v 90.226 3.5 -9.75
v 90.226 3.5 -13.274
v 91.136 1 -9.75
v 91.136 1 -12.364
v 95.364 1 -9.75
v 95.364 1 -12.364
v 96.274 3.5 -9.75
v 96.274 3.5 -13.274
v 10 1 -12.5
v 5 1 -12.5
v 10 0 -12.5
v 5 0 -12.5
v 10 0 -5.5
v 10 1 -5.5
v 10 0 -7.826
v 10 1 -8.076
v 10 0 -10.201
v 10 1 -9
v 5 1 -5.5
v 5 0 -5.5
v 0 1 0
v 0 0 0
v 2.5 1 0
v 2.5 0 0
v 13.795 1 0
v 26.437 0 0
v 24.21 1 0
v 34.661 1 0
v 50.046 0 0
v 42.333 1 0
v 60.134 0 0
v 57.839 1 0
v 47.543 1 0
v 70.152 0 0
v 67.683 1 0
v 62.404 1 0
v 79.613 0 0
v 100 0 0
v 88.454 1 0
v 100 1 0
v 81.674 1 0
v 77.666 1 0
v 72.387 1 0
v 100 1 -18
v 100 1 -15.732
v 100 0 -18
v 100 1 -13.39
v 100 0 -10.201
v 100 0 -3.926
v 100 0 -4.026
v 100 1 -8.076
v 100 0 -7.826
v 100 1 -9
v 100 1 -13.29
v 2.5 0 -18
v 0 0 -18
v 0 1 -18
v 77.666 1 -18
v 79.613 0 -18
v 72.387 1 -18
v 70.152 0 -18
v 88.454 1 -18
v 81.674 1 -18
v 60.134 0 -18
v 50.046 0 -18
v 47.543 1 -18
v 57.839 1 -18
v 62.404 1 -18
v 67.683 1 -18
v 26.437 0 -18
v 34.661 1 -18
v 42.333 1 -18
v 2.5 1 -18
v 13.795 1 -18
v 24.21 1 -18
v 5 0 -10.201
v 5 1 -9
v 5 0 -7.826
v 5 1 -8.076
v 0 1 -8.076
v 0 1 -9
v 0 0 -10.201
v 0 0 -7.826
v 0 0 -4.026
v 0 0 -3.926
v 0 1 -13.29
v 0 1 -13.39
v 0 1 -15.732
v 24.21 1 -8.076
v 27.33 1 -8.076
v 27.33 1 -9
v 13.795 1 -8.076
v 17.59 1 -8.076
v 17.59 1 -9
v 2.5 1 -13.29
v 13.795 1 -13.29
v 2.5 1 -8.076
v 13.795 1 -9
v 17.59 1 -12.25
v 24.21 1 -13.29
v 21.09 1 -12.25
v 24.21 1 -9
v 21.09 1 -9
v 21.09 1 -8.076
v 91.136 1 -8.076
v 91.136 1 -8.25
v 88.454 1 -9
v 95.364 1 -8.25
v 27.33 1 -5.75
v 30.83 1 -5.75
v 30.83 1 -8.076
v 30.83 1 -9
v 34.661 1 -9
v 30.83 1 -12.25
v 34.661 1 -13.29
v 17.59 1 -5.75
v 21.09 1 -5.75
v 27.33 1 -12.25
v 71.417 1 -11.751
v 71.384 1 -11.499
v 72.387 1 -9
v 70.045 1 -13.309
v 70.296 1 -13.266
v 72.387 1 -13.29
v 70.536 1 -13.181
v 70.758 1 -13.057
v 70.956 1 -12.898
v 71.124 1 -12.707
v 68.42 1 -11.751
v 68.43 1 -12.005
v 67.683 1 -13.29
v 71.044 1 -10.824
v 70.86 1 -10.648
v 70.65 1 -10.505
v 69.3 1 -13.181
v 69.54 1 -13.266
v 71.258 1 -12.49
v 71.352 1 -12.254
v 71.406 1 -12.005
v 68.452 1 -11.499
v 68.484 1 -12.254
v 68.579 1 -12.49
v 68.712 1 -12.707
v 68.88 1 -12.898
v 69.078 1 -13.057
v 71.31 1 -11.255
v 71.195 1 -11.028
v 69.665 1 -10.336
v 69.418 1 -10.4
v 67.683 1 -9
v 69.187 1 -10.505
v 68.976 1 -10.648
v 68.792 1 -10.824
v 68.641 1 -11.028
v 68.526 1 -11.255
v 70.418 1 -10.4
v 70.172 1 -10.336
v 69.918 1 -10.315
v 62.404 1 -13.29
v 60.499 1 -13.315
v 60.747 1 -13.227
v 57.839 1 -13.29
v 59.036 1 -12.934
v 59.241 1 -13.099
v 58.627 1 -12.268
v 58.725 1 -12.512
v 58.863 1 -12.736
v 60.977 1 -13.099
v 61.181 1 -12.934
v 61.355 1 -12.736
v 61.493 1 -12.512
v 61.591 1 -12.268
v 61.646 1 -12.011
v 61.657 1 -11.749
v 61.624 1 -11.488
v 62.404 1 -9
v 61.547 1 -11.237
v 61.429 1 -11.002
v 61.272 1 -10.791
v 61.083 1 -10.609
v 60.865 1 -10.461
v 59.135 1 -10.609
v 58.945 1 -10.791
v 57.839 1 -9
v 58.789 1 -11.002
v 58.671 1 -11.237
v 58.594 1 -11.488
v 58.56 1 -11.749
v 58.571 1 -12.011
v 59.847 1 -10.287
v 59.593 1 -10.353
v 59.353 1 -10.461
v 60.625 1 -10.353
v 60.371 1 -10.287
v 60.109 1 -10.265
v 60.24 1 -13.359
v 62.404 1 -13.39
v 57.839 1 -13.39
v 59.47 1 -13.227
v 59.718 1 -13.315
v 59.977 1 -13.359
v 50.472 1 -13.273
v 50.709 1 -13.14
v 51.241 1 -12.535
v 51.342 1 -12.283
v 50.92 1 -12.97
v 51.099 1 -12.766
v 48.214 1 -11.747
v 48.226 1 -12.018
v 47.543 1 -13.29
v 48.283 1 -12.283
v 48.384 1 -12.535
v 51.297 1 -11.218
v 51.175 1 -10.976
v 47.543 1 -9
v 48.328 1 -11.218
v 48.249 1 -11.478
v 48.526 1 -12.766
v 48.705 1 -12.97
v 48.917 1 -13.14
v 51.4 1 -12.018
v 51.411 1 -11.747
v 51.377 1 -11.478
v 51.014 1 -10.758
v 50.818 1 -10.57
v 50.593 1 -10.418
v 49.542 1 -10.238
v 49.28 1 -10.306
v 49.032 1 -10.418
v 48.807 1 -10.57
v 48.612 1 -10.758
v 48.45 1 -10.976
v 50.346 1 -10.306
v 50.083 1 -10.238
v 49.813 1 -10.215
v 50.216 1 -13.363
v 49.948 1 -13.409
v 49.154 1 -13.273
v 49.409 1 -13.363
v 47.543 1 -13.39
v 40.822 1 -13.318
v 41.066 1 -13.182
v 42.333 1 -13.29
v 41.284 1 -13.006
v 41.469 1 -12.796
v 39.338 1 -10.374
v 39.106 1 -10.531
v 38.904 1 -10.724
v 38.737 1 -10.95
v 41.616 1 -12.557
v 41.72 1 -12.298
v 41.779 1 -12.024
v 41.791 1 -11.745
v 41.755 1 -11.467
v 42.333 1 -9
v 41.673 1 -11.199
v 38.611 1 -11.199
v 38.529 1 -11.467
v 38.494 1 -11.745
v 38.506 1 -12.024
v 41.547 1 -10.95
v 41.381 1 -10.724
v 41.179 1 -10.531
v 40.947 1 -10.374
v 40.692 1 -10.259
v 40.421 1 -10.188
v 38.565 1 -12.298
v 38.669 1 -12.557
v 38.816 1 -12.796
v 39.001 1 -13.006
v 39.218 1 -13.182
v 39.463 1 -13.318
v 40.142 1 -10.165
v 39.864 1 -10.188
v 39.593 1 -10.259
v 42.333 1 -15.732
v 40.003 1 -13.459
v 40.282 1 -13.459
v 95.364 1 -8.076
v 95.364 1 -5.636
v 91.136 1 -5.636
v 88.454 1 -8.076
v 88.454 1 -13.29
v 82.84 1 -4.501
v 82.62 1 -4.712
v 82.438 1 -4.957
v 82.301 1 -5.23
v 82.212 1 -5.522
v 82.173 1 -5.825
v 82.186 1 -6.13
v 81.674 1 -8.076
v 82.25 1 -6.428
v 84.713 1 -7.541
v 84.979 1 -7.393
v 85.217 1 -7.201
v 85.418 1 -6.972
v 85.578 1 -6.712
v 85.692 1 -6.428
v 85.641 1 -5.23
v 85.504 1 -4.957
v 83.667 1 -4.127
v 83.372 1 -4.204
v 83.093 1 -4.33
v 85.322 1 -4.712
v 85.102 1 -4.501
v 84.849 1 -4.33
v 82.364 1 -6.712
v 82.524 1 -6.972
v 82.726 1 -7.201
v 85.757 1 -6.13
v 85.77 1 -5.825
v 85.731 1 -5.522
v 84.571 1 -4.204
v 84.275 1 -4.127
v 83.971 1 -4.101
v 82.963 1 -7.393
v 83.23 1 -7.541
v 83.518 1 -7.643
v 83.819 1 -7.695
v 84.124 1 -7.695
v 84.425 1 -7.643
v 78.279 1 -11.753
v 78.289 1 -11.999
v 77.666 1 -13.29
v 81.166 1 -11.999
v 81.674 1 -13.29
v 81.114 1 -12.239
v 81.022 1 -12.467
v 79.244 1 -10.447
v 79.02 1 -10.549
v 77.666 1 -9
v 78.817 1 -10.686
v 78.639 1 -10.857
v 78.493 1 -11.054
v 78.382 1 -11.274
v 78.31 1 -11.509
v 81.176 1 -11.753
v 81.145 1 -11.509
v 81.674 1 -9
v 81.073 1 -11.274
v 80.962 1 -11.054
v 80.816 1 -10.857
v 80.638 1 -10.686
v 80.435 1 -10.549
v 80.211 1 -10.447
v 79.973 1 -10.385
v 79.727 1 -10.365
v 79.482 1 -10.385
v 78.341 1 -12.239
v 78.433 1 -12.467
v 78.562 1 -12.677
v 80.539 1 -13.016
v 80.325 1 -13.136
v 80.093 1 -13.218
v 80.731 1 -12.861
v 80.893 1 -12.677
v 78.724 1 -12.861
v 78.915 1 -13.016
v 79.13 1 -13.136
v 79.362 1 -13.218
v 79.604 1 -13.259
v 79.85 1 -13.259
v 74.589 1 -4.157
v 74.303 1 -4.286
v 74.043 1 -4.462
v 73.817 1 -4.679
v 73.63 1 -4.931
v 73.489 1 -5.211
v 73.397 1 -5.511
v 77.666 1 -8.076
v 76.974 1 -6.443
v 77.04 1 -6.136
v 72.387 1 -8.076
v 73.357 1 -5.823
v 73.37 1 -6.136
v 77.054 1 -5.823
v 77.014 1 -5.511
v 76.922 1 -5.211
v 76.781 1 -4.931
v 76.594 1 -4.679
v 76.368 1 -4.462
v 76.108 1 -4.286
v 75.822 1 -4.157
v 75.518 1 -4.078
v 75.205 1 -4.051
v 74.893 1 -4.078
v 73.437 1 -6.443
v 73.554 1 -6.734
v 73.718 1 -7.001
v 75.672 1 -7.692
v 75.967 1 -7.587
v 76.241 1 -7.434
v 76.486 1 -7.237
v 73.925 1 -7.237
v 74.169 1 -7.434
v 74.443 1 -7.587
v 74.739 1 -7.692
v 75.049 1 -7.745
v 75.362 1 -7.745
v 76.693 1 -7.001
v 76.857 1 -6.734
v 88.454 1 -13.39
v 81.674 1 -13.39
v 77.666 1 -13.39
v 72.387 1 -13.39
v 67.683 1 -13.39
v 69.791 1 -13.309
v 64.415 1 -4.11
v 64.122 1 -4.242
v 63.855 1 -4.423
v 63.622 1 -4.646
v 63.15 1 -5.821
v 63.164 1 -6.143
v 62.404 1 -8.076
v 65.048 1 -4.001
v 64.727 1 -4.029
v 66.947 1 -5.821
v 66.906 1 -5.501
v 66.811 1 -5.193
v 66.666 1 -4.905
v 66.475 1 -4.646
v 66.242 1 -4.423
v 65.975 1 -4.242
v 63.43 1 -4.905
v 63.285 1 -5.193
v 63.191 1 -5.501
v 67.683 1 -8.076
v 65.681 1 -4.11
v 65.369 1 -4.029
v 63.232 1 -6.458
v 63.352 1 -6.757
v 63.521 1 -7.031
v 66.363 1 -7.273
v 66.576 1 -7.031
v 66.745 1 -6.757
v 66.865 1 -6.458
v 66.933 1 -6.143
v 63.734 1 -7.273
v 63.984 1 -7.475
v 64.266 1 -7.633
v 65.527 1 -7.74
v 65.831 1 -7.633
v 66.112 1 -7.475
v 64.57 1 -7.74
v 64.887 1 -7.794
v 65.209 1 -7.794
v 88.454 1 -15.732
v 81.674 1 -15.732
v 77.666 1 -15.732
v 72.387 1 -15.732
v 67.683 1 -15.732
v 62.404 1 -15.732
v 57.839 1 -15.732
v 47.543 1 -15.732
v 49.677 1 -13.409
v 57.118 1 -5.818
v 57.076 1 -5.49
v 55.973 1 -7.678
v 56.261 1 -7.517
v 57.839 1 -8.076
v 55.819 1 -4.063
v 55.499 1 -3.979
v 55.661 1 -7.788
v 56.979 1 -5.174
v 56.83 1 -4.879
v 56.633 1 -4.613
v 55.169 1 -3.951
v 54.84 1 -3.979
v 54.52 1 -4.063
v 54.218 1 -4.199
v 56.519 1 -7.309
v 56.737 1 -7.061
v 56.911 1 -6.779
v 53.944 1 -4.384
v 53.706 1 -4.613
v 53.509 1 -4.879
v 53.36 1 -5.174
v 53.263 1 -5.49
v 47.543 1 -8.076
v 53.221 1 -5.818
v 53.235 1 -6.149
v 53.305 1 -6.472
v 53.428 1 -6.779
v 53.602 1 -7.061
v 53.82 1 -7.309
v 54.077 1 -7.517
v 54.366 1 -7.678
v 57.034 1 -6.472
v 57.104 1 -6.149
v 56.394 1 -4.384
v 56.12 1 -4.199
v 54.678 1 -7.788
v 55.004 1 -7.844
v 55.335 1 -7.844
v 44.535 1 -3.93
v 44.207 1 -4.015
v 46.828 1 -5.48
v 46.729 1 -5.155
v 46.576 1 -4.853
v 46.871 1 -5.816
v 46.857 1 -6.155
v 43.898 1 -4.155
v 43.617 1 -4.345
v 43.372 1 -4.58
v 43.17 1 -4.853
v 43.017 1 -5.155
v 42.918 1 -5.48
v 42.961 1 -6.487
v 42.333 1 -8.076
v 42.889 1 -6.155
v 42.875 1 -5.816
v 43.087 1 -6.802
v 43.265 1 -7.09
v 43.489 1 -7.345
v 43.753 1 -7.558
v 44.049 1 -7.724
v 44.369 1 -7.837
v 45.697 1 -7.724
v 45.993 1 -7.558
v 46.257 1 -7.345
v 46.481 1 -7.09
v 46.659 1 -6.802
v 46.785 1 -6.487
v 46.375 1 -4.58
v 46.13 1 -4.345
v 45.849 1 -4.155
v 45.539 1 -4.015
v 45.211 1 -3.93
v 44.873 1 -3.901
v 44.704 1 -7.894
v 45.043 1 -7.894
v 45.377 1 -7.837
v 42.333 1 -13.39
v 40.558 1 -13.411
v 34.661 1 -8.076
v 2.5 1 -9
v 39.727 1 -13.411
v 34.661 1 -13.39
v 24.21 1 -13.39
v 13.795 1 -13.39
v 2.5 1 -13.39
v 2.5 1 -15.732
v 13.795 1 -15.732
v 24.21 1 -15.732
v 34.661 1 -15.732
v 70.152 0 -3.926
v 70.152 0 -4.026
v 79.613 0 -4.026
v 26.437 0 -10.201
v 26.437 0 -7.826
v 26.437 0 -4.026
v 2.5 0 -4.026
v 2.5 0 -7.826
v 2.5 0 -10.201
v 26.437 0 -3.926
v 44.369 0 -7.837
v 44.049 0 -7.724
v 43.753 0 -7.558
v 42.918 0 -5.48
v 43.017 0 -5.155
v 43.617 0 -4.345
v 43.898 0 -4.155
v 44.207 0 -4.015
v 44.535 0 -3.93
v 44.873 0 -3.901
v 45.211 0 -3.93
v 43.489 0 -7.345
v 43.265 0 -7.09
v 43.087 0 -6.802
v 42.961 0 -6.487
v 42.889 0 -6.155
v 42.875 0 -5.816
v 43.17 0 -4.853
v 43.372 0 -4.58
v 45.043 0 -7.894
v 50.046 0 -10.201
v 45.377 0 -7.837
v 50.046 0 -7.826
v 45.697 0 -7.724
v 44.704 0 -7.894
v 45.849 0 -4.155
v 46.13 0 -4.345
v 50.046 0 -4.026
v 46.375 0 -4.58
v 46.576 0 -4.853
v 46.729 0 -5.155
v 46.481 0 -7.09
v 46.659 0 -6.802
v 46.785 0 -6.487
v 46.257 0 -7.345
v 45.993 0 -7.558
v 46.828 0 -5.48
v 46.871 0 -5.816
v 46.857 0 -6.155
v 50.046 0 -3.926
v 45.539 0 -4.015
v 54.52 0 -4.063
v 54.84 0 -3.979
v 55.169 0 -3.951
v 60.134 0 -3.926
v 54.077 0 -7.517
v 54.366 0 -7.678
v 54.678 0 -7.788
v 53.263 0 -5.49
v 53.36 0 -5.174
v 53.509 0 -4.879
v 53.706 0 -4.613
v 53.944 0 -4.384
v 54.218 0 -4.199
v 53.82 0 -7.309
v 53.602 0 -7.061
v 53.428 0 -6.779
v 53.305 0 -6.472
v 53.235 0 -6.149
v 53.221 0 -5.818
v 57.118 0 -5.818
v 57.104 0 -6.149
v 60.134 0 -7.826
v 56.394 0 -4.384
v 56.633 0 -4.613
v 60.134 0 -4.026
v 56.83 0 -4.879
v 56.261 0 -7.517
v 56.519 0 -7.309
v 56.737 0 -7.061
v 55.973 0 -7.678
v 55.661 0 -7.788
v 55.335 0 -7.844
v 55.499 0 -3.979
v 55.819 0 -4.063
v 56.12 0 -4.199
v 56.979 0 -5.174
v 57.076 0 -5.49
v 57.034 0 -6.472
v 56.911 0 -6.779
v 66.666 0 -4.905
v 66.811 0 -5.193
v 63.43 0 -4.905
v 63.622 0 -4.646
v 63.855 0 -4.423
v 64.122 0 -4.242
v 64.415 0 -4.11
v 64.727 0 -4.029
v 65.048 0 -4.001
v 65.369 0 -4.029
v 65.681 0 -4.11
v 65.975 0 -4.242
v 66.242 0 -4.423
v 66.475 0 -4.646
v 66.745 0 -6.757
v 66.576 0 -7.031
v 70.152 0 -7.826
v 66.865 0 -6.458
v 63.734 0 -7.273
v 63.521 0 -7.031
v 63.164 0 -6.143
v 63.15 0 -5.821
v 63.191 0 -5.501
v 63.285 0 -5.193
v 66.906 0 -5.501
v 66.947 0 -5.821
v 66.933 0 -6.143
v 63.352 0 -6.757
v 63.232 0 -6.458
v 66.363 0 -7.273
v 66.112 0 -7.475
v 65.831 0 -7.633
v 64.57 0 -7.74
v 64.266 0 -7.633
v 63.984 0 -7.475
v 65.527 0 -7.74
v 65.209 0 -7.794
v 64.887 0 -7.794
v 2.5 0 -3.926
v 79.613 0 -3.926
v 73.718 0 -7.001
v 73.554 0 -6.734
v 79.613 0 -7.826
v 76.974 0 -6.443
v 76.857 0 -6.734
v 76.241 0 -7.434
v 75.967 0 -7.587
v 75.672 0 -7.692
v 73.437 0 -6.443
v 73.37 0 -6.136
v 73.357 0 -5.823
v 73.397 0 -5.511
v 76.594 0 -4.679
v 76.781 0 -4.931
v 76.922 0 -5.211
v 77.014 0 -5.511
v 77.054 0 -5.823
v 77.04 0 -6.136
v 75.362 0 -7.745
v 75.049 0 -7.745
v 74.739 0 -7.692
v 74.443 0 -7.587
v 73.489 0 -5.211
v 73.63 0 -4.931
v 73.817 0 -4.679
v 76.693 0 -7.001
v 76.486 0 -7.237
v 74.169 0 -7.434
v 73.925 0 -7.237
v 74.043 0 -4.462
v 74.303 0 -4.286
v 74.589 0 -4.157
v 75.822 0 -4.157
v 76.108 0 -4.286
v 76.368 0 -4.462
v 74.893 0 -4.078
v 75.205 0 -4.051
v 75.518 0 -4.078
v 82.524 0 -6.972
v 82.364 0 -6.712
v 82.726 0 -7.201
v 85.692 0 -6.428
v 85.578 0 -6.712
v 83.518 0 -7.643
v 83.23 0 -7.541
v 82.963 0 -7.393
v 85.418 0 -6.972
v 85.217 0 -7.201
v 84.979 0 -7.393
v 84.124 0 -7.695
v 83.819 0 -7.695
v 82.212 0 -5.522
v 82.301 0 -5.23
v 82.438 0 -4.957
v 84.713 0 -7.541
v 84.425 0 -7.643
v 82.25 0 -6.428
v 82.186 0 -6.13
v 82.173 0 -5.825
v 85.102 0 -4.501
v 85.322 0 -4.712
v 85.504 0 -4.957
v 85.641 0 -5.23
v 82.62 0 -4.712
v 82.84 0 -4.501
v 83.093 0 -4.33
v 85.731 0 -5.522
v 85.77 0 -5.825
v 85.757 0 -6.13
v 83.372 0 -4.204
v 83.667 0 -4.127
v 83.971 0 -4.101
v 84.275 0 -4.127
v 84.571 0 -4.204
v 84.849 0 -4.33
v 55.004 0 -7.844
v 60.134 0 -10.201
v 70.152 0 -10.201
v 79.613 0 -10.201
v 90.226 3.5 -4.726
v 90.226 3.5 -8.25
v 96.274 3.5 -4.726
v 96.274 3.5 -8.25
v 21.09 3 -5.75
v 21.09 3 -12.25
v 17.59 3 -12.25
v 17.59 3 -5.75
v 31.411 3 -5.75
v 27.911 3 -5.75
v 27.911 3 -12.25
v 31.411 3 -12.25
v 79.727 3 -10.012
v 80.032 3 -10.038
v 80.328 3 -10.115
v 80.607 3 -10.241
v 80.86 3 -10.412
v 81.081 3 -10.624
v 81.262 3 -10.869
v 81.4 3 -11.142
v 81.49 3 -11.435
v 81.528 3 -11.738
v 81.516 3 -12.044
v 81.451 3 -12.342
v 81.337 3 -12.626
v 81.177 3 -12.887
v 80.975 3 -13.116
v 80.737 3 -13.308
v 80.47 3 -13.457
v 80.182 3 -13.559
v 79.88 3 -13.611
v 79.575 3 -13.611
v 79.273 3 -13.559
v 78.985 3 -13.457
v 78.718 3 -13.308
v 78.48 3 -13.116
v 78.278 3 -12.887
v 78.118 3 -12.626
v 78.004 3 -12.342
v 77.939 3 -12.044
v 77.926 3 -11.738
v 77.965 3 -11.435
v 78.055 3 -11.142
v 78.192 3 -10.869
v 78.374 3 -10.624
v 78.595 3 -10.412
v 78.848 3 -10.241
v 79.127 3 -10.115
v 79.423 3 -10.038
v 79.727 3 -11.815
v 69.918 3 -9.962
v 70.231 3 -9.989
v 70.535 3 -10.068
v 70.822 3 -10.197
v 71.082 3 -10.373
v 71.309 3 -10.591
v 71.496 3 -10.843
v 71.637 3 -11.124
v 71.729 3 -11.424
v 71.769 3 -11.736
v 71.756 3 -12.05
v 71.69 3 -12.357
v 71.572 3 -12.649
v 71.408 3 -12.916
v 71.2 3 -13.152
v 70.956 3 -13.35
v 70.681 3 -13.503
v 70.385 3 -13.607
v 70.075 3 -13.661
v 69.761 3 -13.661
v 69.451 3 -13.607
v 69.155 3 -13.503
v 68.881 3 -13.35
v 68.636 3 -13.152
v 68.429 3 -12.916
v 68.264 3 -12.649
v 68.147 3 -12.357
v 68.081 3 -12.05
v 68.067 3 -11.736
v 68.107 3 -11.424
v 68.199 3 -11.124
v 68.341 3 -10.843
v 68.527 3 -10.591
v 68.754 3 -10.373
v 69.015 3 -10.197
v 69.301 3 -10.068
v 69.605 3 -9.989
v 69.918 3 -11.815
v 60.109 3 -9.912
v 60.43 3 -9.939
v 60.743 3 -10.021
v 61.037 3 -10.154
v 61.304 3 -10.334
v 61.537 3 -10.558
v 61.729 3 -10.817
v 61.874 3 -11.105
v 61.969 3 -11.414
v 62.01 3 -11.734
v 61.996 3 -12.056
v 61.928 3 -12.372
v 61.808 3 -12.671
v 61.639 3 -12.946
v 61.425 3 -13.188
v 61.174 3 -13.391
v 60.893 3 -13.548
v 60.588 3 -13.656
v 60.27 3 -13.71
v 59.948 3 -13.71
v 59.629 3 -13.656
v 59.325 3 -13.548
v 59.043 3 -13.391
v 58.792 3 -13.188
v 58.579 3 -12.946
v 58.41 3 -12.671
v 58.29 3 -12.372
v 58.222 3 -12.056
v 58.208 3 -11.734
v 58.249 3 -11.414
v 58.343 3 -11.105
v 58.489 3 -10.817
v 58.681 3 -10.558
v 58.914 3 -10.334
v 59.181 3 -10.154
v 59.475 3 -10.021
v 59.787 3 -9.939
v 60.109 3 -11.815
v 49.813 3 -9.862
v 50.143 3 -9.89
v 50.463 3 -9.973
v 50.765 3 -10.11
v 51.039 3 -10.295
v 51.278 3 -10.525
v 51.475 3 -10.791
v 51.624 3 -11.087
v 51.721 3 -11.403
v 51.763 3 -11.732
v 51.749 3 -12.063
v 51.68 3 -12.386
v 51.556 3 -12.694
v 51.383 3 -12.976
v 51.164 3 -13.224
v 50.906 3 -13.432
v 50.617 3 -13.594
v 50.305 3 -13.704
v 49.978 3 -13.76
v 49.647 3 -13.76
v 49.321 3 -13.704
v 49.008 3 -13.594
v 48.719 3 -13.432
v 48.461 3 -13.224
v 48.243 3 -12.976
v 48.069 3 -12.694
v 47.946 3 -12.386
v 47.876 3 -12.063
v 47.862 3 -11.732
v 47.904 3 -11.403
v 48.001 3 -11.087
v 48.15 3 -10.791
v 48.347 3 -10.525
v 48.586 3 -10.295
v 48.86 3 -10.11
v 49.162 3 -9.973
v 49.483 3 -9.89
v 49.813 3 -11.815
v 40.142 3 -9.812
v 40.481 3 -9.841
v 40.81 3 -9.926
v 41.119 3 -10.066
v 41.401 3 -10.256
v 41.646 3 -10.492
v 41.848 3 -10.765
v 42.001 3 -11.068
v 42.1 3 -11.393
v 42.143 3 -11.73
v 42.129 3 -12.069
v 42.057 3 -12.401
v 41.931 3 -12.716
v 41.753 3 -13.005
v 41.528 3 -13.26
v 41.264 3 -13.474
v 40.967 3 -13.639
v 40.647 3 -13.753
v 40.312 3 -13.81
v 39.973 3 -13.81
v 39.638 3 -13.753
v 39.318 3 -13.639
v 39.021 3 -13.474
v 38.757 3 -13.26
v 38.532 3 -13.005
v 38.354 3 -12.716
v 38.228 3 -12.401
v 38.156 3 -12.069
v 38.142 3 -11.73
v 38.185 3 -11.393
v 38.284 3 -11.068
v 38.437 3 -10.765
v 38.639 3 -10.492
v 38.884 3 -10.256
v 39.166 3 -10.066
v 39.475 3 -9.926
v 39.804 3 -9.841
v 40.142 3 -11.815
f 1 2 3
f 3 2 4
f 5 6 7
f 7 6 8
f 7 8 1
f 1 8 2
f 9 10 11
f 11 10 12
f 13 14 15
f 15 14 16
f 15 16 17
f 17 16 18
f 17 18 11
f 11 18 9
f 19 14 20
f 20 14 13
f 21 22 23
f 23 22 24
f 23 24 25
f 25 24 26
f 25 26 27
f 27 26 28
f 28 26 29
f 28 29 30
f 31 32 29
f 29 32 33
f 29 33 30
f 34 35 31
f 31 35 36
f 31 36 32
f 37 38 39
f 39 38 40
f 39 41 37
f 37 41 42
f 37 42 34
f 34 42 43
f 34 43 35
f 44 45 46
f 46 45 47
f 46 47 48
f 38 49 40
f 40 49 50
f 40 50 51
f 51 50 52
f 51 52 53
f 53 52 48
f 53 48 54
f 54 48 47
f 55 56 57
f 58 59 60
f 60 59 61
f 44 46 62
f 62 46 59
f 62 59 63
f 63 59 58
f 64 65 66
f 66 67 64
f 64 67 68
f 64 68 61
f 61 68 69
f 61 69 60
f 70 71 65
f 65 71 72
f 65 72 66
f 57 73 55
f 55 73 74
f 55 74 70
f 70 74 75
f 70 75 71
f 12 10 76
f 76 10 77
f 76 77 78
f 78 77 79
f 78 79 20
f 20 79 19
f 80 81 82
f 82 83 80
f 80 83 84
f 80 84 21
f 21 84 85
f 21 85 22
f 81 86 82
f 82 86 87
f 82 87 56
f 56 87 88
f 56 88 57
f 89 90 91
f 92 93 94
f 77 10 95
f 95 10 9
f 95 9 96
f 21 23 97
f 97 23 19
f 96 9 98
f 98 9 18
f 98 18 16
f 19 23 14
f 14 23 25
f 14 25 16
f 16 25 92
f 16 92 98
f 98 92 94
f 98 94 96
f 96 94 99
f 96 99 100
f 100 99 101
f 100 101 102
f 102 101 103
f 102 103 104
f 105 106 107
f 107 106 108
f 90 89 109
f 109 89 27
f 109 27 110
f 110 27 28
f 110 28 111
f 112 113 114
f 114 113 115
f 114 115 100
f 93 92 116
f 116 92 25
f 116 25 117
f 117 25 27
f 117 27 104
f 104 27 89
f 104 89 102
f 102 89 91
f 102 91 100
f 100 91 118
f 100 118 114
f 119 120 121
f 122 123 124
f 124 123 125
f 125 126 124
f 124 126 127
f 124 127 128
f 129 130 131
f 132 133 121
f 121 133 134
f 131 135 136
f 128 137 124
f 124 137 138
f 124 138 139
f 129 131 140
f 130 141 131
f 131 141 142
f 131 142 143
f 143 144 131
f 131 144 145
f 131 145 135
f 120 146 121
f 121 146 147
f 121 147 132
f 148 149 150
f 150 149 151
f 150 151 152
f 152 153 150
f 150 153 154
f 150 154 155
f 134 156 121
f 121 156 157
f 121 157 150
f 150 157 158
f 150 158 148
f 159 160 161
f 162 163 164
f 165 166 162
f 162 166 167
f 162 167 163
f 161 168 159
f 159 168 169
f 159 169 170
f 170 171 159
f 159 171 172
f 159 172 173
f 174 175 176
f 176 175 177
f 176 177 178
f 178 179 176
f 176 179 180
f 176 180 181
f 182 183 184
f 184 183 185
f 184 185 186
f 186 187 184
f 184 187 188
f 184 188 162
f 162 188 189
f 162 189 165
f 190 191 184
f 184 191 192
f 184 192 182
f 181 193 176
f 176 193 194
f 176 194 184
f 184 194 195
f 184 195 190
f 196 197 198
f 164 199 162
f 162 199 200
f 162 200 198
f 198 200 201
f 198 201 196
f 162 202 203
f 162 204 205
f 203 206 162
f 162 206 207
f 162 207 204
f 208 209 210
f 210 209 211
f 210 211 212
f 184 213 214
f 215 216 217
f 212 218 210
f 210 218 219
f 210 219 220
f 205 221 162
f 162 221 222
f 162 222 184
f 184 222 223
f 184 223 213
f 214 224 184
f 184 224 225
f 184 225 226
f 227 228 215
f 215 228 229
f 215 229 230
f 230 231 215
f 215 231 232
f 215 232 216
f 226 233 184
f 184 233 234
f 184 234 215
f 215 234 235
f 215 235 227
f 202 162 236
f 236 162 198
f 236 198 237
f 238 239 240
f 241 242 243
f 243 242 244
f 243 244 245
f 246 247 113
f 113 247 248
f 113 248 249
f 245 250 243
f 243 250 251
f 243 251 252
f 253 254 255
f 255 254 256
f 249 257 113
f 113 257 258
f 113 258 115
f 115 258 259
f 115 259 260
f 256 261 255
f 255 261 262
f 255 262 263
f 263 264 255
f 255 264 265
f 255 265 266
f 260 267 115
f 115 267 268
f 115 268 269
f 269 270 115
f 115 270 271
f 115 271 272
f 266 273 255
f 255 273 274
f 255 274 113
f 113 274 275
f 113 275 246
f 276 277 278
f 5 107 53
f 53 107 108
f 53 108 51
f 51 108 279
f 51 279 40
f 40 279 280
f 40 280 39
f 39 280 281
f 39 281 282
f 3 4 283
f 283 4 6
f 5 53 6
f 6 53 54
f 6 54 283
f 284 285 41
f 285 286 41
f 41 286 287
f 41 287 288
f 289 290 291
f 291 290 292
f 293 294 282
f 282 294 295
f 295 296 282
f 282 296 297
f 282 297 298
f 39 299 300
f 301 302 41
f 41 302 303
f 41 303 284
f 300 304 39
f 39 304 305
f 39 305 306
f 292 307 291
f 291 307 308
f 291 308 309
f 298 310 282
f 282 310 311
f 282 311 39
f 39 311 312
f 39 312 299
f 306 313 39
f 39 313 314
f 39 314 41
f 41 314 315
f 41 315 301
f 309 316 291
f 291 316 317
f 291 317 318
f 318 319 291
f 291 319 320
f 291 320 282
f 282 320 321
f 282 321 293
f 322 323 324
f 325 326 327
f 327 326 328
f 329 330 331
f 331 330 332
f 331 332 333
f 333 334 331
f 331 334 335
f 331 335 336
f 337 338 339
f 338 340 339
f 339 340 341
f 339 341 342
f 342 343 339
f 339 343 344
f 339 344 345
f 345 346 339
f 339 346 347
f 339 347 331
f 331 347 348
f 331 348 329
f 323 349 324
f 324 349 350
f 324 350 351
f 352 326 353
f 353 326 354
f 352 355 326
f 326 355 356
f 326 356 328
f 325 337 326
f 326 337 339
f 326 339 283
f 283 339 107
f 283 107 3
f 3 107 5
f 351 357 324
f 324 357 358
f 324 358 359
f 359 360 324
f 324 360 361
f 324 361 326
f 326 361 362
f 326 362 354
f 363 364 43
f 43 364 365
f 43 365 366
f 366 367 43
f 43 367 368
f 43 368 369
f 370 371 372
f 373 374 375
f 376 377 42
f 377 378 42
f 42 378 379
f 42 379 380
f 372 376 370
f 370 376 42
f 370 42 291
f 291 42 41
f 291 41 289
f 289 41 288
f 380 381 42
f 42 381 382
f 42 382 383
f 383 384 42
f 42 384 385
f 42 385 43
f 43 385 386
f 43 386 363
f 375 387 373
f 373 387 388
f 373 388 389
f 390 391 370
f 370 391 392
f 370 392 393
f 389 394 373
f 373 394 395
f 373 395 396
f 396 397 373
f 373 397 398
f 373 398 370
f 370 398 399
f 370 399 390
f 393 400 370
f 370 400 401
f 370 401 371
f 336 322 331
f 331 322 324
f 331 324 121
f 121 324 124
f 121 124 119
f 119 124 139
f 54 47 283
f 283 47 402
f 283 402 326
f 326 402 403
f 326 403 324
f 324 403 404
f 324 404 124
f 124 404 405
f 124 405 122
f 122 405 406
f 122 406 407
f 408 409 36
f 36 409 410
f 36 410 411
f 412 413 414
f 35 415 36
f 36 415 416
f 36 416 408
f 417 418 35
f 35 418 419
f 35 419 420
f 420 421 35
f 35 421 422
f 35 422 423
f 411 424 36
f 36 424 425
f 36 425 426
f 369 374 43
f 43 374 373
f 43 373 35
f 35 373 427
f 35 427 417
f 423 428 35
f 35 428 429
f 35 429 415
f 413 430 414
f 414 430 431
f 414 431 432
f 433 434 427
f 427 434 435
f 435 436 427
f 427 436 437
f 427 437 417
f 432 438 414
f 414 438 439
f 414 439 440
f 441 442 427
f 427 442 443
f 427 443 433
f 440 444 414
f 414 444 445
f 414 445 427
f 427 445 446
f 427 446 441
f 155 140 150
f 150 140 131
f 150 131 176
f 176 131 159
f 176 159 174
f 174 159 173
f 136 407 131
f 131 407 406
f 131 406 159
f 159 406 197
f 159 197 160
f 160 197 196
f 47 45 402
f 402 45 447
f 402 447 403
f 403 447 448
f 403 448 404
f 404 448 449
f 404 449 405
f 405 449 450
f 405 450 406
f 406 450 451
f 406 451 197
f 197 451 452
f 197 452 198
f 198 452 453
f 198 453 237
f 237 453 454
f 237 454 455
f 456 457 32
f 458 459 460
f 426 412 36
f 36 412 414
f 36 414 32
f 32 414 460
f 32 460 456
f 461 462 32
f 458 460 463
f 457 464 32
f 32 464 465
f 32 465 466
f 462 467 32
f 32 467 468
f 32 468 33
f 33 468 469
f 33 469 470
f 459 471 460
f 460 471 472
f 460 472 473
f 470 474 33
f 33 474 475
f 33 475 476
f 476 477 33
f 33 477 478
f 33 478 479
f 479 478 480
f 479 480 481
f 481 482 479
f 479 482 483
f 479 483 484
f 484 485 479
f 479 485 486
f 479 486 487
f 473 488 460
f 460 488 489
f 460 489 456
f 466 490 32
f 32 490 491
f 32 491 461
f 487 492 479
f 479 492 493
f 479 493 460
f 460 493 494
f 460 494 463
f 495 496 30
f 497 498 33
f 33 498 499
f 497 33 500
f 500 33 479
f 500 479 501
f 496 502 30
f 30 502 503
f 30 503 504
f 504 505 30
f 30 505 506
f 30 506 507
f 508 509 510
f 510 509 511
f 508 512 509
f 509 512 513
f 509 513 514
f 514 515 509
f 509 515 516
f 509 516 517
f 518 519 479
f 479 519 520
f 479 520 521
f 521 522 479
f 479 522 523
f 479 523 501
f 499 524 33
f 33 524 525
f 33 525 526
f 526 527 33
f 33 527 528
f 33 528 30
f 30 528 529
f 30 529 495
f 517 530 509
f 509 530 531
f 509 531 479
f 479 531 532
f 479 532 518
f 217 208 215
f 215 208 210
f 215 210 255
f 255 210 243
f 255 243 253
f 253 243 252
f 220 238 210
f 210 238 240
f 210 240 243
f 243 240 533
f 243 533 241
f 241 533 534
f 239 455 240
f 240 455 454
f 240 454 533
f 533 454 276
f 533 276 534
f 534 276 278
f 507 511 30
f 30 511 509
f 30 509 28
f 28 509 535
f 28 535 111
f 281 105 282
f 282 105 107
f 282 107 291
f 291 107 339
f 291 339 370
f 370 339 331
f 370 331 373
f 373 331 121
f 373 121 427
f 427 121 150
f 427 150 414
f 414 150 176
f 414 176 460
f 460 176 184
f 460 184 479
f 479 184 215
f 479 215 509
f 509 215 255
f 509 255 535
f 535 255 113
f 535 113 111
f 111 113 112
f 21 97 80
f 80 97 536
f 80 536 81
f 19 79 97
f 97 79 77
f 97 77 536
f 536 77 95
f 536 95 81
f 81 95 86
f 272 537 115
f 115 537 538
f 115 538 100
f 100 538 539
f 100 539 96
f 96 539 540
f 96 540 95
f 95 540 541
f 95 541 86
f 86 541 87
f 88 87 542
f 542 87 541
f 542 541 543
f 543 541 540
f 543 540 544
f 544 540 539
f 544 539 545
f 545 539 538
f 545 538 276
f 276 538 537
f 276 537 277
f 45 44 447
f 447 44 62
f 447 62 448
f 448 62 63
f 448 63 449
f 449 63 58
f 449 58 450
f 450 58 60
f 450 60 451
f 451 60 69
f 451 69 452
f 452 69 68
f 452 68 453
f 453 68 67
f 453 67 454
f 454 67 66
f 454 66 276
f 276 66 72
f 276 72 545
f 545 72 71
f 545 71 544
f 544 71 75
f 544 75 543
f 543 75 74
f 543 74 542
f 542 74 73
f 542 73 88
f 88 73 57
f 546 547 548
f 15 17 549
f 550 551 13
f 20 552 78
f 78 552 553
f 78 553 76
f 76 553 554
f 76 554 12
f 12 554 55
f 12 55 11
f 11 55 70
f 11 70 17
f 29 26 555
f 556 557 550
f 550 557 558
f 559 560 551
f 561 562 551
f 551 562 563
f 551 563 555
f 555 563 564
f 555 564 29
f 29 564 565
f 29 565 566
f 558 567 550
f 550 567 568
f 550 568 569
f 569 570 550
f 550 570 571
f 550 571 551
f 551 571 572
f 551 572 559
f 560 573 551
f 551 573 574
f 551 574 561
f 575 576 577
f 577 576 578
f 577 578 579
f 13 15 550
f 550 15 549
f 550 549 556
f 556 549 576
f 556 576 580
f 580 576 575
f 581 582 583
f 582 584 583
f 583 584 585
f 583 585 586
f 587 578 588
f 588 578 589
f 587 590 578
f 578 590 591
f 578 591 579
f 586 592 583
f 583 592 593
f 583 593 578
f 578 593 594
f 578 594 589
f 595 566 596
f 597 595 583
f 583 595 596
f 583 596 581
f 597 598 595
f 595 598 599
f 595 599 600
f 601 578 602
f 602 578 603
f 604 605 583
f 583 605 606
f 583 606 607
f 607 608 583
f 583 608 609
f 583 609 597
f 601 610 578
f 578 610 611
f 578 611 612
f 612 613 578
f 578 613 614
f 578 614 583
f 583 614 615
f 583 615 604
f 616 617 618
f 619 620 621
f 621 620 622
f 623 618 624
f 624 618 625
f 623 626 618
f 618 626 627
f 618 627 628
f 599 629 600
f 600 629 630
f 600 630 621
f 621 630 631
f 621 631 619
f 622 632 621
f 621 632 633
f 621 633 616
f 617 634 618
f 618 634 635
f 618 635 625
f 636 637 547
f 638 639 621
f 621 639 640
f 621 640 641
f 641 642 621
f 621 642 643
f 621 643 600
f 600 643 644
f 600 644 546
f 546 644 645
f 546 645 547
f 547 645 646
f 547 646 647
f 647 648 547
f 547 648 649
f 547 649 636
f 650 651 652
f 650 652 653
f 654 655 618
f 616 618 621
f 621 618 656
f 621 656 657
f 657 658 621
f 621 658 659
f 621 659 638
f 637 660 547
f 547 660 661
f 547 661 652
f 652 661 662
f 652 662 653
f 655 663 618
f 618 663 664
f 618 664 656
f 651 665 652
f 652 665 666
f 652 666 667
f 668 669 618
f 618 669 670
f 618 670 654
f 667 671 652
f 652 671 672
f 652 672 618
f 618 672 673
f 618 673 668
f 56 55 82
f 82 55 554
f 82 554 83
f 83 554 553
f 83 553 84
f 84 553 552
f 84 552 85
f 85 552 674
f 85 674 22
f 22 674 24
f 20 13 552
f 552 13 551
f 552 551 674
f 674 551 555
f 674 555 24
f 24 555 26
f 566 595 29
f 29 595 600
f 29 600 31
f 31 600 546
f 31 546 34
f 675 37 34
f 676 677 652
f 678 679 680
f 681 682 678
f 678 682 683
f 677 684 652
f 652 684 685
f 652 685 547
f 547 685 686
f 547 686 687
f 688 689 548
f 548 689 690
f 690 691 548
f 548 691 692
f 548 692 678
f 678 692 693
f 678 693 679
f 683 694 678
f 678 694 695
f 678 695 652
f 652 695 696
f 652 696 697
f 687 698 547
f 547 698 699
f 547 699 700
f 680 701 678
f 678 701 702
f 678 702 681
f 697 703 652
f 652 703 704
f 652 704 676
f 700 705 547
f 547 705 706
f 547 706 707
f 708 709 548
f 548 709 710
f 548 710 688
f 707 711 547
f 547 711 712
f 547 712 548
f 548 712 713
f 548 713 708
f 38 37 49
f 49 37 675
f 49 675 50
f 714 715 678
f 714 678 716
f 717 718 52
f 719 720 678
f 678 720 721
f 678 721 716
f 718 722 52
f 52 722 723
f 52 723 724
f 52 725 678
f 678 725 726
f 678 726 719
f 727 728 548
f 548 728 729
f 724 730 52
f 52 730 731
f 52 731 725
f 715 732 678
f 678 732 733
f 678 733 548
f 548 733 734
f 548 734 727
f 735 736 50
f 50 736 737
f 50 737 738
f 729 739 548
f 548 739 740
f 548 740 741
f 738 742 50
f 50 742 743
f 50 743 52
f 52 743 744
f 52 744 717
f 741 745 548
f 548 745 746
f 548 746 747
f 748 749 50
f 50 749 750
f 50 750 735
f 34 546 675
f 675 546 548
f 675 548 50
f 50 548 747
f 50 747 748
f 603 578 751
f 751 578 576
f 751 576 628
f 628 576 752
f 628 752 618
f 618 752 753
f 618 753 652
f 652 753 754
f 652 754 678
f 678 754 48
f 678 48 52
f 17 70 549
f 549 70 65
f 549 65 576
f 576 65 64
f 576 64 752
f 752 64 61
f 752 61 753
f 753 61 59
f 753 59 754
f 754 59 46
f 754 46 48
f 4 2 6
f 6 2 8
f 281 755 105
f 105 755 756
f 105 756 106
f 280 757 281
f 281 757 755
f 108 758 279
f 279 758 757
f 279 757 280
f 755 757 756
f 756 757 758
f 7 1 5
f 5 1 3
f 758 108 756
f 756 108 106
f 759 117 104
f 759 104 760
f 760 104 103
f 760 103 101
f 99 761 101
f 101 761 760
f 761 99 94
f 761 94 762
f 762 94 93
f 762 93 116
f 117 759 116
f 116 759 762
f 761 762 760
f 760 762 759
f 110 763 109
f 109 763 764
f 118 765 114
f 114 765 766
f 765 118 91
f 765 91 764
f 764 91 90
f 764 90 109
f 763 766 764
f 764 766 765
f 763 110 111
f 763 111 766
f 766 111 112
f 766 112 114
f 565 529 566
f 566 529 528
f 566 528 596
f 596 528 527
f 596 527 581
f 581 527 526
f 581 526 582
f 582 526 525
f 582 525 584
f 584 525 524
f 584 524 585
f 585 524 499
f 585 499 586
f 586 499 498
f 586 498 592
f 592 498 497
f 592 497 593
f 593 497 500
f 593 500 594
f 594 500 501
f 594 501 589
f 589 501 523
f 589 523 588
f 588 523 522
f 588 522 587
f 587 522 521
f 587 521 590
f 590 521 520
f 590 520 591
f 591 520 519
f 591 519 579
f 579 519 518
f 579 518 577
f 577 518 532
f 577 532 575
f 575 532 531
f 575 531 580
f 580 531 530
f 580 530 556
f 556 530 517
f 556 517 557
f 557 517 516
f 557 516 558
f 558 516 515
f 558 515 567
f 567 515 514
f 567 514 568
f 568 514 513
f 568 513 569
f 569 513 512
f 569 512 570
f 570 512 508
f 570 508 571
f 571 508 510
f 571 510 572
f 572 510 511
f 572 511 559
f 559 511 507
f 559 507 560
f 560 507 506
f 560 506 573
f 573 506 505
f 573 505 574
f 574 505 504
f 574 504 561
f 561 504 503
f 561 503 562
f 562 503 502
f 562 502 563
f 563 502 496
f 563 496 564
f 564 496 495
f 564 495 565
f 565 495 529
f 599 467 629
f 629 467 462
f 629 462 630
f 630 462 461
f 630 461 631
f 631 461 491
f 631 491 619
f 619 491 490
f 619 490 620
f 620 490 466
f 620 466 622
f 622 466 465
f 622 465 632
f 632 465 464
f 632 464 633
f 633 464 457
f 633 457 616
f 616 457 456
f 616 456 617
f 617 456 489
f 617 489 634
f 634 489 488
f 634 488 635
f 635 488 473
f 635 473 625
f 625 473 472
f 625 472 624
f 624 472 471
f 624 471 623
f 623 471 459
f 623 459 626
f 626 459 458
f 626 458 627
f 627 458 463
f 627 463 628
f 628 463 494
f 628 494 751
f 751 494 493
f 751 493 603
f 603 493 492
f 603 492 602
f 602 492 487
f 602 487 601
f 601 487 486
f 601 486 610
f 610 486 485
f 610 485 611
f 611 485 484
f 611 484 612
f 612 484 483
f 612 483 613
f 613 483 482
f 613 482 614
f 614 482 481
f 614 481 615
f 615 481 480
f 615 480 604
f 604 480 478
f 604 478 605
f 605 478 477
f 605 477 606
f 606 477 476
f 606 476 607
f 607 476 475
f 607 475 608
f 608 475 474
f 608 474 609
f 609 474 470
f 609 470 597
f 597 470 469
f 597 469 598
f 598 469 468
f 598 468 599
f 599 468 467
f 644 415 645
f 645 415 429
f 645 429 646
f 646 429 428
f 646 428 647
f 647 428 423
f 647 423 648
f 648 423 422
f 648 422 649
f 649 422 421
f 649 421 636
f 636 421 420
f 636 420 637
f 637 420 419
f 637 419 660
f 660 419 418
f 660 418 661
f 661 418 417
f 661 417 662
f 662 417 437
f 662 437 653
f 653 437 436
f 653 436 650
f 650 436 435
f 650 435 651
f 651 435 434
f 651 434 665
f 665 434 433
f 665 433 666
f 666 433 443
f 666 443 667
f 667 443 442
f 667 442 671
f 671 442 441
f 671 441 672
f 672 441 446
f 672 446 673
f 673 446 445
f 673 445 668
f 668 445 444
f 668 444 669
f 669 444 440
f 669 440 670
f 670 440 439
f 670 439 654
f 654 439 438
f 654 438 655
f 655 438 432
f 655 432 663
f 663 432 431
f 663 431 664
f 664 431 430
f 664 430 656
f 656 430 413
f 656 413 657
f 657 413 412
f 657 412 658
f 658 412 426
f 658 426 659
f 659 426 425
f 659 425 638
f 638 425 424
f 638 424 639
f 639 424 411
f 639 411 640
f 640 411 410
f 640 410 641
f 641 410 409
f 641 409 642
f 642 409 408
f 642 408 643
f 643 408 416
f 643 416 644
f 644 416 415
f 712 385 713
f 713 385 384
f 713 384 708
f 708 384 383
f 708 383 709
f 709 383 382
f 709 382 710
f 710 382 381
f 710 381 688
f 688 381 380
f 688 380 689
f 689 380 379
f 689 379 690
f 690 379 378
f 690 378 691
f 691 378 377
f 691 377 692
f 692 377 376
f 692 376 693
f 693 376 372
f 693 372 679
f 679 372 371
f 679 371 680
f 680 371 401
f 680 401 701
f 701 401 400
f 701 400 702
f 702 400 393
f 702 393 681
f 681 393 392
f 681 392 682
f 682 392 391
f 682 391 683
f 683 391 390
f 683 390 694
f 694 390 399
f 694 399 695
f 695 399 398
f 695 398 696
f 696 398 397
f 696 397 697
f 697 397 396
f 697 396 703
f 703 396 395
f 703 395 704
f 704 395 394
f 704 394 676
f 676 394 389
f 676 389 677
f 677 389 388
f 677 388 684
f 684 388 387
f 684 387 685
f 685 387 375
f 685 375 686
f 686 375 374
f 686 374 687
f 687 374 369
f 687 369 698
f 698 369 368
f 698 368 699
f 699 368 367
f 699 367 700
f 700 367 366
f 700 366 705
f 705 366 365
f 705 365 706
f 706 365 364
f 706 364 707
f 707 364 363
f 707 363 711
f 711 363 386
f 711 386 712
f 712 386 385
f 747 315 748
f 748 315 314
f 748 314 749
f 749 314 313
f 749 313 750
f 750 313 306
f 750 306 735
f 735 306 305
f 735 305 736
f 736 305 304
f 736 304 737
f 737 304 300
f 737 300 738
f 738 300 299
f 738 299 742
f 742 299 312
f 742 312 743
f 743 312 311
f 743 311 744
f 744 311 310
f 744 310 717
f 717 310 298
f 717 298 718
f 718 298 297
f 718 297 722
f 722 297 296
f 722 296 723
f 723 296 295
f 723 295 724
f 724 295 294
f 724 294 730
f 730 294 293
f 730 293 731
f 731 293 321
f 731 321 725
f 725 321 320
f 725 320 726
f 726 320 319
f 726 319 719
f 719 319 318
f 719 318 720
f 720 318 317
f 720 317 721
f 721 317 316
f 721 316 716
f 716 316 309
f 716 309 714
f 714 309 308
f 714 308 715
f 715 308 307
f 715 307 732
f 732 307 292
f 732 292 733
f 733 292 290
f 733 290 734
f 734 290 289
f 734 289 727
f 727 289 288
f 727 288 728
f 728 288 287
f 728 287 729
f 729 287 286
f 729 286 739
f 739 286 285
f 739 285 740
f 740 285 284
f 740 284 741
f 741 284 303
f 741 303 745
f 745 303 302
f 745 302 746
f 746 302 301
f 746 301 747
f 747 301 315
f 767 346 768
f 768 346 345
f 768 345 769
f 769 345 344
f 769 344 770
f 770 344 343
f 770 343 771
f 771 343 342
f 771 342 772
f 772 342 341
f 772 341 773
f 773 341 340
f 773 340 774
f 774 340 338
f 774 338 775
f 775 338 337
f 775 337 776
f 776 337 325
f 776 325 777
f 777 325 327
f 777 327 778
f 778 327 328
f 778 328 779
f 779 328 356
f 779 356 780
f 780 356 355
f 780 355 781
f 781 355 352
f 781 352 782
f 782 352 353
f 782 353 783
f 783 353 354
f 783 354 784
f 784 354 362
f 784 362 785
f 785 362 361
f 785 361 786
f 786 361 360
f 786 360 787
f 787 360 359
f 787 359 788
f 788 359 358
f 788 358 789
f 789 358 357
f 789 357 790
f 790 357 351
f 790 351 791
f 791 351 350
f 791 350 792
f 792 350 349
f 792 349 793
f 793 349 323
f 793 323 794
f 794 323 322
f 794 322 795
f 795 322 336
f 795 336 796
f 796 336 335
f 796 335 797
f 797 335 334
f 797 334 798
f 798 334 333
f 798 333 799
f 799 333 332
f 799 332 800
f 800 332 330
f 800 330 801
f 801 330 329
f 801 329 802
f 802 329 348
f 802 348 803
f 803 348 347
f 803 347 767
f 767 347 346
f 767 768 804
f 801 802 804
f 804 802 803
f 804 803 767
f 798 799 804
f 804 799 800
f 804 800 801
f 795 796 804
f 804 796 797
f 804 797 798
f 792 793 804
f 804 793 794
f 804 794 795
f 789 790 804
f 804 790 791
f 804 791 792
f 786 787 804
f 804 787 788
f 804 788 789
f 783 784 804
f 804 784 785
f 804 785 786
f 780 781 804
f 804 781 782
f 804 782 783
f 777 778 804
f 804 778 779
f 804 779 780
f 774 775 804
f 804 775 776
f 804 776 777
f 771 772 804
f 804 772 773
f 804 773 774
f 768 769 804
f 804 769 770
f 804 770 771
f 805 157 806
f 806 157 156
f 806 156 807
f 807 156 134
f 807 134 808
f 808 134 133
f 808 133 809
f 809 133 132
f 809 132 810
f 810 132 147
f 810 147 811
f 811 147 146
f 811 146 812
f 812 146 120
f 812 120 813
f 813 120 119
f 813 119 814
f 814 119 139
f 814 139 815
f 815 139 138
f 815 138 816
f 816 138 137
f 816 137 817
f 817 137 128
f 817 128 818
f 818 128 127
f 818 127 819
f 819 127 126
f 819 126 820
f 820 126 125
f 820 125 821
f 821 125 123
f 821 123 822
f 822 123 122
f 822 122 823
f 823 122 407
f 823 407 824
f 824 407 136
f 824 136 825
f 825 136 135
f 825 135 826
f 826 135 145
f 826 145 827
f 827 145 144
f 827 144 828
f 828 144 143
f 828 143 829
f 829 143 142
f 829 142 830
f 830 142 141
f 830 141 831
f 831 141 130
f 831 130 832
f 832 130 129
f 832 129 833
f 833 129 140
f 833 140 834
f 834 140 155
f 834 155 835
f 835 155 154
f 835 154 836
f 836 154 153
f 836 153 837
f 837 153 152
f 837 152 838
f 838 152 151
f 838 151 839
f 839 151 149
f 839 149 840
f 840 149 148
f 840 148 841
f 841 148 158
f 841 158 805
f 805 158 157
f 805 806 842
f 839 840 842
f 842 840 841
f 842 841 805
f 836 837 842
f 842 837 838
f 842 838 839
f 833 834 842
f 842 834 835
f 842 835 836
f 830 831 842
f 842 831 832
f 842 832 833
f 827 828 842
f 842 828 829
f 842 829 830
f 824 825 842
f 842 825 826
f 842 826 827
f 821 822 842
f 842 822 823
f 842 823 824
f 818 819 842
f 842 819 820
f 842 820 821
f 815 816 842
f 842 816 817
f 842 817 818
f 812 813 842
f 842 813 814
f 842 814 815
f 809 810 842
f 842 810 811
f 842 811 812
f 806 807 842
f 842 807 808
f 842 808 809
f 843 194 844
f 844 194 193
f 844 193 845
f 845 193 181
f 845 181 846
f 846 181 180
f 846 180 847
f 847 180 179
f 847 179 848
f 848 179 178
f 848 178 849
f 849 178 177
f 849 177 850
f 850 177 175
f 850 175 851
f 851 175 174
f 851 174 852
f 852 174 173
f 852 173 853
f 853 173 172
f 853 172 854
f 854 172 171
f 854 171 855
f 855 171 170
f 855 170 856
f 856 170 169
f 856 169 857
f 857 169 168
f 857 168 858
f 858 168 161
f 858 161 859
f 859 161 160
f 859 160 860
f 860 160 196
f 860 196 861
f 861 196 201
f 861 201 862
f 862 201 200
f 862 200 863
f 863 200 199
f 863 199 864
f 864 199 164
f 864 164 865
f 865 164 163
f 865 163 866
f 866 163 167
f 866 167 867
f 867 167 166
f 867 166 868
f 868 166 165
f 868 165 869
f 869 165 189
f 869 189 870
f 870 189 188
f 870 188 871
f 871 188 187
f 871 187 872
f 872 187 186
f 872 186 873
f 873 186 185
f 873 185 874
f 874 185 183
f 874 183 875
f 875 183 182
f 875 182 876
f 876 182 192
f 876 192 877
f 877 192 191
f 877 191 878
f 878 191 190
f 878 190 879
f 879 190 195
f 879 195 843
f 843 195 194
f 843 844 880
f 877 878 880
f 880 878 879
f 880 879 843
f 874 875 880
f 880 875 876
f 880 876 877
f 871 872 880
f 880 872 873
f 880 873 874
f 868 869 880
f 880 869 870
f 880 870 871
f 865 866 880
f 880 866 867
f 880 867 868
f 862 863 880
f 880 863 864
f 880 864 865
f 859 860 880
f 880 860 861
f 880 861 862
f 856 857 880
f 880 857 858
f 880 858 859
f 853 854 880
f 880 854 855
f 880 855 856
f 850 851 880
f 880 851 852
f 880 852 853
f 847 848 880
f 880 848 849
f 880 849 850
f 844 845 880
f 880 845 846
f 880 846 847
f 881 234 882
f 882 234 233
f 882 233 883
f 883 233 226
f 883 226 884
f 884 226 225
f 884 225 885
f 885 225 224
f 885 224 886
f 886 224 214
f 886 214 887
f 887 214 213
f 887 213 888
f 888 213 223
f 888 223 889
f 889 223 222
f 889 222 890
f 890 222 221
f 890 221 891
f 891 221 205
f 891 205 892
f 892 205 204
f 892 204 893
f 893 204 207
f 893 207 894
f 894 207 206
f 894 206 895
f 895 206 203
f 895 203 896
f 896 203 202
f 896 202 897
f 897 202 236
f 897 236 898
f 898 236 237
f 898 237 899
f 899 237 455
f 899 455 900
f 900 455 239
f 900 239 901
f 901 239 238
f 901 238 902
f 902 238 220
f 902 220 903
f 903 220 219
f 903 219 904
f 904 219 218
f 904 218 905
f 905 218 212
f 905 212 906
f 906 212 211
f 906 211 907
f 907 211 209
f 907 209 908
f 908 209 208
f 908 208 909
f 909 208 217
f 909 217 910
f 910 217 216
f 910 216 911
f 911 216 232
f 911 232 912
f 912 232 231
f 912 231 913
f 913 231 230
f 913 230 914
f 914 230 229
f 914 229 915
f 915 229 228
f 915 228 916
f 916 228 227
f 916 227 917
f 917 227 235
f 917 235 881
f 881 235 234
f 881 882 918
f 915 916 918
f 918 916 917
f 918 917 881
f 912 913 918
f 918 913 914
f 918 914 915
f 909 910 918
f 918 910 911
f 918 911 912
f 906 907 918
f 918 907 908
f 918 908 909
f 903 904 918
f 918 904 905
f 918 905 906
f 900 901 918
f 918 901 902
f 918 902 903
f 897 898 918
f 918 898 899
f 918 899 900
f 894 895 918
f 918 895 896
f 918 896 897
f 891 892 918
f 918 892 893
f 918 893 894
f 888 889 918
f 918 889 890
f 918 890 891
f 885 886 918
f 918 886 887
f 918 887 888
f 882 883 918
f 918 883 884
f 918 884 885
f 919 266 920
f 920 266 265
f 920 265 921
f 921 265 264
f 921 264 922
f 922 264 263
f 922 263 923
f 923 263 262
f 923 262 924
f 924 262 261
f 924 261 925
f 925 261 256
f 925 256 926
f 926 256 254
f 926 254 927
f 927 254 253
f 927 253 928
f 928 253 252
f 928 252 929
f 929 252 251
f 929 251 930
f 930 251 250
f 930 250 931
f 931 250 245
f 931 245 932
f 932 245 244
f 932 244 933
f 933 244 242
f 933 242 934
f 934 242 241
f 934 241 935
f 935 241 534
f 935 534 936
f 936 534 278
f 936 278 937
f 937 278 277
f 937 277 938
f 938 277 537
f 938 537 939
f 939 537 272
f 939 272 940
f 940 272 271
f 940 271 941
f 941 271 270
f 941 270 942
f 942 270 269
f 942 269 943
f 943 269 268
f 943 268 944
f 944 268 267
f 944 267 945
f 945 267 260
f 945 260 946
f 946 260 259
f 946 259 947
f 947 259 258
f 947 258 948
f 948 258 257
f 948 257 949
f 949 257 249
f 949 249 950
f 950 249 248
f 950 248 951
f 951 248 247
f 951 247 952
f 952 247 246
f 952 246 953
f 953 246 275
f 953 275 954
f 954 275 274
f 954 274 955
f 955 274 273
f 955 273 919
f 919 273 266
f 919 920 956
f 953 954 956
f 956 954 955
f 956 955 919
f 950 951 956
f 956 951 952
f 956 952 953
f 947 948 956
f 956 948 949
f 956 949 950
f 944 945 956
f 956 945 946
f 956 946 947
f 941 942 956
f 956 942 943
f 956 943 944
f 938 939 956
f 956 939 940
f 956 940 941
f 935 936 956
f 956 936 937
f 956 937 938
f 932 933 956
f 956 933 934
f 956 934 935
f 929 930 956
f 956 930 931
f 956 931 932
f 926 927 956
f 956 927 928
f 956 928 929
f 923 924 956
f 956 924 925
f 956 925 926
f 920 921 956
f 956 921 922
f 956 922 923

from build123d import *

# Parameters (mm, degrees)
SKETCH1_W           = 100
SKETCH1_H           = 18
SKETCH1_W_2         = 5
SKETCH1_H_2         = 7
SKETCH1_W_3         = 3.5
SKETCH1_H_3         = 6
SKETCH1_H_4         = 6.5
BOSS_EXTRUDE1_DEPTH = 1
SKETCH2_W           = 3.5
SKETCH2_H           = 6
BOSS_EXTRUDE2_DEPTH = 3.5
BOSS_EXTRUDE2_TAPER = -20
SKETCH3_W           = 6.04779164
SKETCH3_H           = 1.5
CUT_EXTRUDE1_DEPTH  = 2.5
SKETCH4_W           = 3.5
SKETCH4_H           = 6.5
BOSS_EXTRUDE3_DEPTH = 3
BOSS_EXTRUDE4_DEPTH = 6.5
SKETCH10_R          = 1.8
SKETCH10_R_2        = 1.85
SKETCH10_R_3        = 1.9
SKETCH10_R_4        = 1.95
SKETCH10_R_5        = 2
CUT_EXTRUDE2_DEPTH  = 2
SKETCH10_3_R        = 1.45
SKETCH10_3_R_2      = 1.5
SKETCH10_3_R_3      = 1.55
SKETCH10_3_R_4      = 1.6
SKETCH10_3_R_5      = 1.65
BOSS_EXTRUDE5_DEPTH = 2
BOSS_EXTRUDE5_TAPER = -10


with BuildPart() as part:
    # Sketch1 → Boss-Extrude1 (new body)
    with BuildSketch(Plane(origin=(0, 0, 0), x_dir=(1, 0, 0), z_dir=(0, 1, 0))):
        with Locations((50, 9)):
            Rectangle(SKETCH1_W, SKETCH1_H)
        with Locations((7.5, 9)):
            Rectangle(SKETCH1_W_2, SKETCH1_H_2, mode=Mode.SUBTRACT)
        with Locations((93.25, 9)):
            Rectangle(SKETCH1_W_3, SKETCH1_H_3, mode=Mode.SUBTRACT)
        with Locations((19.340066027, 9)):
            Rectangle(SKETCH1_W_3, SKETCH1_H_4, mode=Mode.SUBTRACT)
    extrude(amount=BOSS_EXTRUDE1_DEPTH)

    # Sketch2 → Boss-Extrude2 (add)
    with BuildSketch(Plane.XZ):
        with Locations((93.25, -9)):
            Rectangle(SKETCH2_W, SKETCH2_H)
    extrude(amount=-BOSS_EXTRUDE2_DEPTH, taper=BOSS_EXTRUDE2_TAPER)

    # Sketch3 → Cut-Extrude1 (cut)
    with BuildSketch(Plane(origin=(0, 3.5, 0), x_dir=(1, 0, 0), z_dir=(0, 1, 0))):
        with Locations((93.25, 9)):
            Rectangle(SKETCH3_W, SKETCH3_H)
    extrude(amount=-CUT_EXTRUDE1_DEPTH, mode=Mode.SUBTRACT)

    # Sketch4 → Boss-Extrude3 (add)
    with BuildSketch(Plane.XZ):
        with Locations((19.340066027, -9)):
            Rectangle(SKETCH4_W, SKETCH4_H)
    extrude(amount=-BOSS_EXTRUDE3_DEPTH)

    # Sketch9 → Boss-Extrude4 (add)
    with BuildSketch(Plane(origin=(0, 0, -12.25), x_dir=(-1, 0, 0), z_dir=(0, 0, -1))):
        Polygon((-31.411175368, 3), (-27.911175368, 3), (-27.038919355, 0), (-30.538919355, 0), align=None)
    extrude(amount=-BOSS_EXTRUDE4_DEPTH)

    # Sketch10 → Cut-Extrude2 (cut, through all)
    with BuildSketch(Plane(origin=(0, 1, 0), x_dir=(1, 0, 0), z_dir=(0, 1, 0))):
        with Locations((83.971192641, 5.901209197)):
            Circle(SKETCH10_R)
        with Locations((75.205441642, 5.901209197)):
            Circle(SKETCH10_R_2)
        with Locations((65.048301596, 5.901209197)):
            Circle(SKETCH10_R_3)
        with Locations((55.169439359, 5.901209197)):
            Circle(SKETCH10_R_4)
        with Locations((44.873160409, 5.901209197)):
            Circle(SKETCH10_R_5)
    extrude(amount=-CUT_EXTRUDE2_DEPTH, mode=Mode.SUBTRACT)

    # Sketch10<3> → Boss-Extrude5 (add)
    with BuildSketch(Plane(origin=(0, 1, 0), x_dir=(1, 0, 0), z_dir=(0, 1, 0))):
        with Locations((79.727456046, 11.814612648)):
            Circle(SKETCH10_3_R)
        with Locations((69.918163262, 11.814612648)):
            Circle(SKETCH10_3_R_2)
        with Locations((60.108870478, 11.814612648)):
            Circle(SKETCH10_3_R_3)
        with Locations((49.812591527, 11.814612648)):
            Circle(SKETCH10_3_R_4)
        with Locations((40.142437647, 11.814612648)):
            Circle(SKETCH10_3_R_5)
    extrude(amount=BOSS_EXTRUDE5_DEPTH, taper=BOSS_EXTRUDE5_TAPER)


solid = part.part
